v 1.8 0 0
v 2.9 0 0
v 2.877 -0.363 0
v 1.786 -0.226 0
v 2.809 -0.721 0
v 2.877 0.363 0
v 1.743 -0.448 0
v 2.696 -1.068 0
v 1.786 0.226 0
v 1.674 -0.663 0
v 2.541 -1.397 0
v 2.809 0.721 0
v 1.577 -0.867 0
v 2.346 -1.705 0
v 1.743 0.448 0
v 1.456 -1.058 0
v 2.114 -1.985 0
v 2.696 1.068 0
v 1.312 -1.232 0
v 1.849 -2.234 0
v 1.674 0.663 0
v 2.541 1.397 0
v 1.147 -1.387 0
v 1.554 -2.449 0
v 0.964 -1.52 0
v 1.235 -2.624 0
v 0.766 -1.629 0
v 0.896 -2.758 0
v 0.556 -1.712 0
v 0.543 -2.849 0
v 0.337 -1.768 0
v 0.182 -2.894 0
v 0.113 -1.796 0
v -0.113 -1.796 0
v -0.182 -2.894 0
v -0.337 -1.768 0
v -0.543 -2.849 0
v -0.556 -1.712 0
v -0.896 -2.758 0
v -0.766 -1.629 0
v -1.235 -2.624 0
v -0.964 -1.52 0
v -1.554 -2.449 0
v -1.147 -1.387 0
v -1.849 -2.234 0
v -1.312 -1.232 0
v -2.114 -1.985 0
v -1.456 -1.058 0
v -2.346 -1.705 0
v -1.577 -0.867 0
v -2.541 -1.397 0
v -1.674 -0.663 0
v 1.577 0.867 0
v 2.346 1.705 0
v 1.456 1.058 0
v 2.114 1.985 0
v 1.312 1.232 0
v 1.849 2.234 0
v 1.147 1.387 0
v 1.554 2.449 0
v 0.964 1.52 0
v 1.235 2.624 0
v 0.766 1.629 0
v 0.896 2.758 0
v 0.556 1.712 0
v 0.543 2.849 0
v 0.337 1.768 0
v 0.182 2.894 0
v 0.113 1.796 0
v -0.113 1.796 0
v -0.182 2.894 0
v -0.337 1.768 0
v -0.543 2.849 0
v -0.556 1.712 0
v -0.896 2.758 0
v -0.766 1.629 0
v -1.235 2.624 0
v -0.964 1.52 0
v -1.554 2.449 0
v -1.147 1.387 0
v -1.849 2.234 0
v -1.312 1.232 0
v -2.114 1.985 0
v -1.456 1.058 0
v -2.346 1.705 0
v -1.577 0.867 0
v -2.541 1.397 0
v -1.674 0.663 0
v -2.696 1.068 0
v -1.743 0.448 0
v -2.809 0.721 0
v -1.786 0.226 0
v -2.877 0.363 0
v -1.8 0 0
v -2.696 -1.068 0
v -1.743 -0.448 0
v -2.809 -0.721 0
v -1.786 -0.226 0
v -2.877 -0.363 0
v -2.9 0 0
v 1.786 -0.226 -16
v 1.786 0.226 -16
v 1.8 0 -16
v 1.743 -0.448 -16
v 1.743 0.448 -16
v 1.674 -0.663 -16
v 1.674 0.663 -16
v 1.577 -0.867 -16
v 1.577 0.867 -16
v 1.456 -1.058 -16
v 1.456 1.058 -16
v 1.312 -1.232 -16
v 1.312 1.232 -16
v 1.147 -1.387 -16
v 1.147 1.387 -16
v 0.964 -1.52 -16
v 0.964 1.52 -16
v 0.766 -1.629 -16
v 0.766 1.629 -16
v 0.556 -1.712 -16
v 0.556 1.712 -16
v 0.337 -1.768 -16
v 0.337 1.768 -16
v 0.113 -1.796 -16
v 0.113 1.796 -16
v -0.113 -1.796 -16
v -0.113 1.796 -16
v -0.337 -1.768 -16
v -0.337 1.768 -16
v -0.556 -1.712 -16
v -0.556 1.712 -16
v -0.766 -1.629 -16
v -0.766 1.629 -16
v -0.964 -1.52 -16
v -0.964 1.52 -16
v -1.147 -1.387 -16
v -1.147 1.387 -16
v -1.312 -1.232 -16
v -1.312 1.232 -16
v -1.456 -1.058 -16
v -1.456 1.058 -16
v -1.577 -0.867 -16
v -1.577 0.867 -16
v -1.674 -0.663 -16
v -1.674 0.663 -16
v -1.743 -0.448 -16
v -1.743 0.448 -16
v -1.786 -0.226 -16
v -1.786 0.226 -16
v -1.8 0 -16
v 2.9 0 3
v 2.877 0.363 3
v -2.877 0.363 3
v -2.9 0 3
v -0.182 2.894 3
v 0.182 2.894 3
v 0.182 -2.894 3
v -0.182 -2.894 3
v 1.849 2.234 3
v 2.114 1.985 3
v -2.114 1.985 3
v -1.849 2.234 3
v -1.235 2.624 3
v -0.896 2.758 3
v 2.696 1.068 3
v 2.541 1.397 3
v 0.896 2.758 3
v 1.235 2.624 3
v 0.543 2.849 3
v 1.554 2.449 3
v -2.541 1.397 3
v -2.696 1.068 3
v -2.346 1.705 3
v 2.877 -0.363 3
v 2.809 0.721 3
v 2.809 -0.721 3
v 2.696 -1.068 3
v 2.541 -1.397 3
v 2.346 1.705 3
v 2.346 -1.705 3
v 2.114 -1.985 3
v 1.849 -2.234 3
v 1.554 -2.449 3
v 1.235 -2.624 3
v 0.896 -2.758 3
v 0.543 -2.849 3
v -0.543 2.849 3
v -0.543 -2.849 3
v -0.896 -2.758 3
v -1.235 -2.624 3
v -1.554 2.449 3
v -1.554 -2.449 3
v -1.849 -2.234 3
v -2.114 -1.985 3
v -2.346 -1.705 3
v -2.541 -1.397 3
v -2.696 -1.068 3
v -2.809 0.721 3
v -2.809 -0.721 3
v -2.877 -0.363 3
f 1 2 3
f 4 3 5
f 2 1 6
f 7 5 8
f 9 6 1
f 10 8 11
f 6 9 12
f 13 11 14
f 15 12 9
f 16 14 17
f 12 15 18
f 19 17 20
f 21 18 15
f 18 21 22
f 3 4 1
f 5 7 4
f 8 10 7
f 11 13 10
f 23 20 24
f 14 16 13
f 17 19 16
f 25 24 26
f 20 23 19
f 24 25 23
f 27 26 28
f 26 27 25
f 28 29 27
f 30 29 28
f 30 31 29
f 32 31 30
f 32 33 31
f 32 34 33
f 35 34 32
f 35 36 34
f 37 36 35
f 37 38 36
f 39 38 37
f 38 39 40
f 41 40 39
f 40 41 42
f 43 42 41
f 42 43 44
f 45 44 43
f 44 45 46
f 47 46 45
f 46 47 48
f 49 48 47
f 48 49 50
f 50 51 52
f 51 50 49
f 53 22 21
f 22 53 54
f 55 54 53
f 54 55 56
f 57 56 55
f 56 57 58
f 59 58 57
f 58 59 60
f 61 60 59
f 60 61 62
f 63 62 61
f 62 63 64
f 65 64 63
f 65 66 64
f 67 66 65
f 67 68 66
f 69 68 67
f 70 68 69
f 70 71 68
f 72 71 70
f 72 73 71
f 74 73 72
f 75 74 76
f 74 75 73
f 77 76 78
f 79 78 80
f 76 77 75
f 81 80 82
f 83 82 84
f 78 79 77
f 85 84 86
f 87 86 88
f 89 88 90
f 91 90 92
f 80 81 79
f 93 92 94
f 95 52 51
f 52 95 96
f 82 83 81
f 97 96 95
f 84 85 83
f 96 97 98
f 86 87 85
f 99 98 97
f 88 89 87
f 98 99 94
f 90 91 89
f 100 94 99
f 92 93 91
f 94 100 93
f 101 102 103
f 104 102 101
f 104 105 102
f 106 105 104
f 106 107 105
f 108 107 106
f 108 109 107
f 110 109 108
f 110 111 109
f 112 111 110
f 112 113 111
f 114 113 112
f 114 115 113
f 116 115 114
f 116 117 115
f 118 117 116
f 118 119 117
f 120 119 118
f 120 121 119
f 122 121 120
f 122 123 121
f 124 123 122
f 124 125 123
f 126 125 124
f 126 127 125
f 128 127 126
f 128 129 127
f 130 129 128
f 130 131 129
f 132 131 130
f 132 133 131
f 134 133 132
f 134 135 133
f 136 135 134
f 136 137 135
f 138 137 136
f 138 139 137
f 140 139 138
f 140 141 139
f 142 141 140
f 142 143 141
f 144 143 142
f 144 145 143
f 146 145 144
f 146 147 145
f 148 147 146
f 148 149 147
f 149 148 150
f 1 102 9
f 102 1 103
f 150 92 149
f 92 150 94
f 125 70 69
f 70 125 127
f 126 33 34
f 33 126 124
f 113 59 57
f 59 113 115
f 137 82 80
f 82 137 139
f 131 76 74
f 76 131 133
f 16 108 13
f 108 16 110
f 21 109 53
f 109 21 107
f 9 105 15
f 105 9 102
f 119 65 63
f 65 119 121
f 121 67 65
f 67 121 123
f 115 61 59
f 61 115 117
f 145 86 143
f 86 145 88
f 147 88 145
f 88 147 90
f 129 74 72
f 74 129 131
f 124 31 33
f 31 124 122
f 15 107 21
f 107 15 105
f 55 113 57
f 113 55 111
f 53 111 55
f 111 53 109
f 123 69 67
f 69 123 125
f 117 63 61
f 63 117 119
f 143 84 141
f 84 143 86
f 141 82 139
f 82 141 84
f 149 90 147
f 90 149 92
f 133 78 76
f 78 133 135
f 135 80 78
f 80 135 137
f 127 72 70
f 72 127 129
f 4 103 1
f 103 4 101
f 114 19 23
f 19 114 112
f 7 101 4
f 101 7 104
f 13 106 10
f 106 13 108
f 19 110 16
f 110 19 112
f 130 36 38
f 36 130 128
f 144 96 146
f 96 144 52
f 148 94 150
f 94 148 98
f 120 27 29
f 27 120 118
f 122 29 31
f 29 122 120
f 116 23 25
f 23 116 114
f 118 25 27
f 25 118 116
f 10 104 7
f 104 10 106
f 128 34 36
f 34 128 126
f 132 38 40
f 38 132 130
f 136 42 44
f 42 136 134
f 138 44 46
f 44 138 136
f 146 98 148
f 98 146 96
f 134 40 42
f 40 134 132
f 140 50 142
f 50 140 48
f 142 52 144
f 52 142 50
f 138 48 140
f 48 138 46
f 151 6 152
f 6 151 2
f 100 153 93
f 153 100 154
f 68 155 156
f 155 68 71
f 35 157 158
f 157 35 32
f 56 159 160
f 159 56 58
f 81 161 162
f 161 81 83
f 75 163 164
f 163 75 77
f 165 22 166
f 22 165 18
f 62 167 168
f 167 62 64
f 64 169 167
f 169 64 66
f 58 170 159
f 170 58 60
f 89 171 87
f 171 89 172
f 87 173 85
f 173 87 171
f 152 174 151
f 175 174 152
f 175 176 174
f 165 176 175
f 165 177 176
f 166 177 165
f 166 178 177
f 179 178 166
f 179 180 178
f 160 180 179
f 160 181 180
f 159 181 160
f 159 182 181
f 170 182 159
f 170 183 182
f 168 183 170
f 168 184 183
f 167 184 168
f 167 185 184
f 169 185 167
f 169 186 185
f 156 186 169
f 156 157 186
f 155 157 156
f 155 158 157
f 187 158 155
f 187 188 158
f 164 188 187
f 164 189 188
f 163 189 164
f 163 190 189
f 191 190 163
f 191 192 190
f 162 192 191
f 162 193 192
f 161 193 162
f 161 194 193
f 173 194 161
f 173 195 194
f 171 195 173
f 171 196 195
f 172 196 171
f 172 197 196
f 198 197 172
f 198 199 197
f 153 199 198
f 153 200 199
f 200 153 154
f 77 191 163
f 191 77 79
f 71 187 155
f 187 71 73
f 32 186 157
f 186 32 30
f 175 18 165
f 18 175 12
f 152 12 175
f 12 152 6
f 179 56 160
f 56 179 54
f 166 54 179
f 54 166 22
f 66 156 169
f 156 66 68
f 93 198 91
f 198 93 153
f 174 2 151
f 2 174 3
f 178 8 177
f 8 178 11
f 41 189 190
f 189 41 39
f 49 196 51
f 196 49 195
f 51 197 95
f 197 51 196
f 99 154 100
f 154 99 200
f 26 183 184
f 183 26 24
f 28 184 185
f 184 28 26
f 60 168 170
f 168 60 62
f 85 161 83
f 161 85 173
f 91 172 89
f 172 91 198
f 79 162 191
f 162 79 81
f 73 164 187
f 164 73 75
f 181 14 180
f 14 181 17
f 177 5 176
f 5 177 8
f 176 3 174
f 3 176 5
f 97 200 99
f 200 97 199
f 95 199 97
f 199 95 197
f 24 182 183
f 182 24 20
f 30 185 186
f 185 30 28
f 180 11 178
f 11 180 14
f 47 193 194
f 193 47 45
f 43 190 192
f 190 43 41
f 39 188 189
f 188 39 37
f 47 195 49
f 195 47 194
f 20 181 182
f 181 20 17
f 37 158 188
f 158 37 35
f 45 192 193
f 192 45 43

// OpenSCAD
$fn = 50;


difference() {
	union() {
		translate(v = [0, 0, 0]) {
			rotate(a = [0, 0, 0]) {
				difference() {
					union() {
						translate(v = [0, 0, -16.0000000000]) {
							cylinder(h = 16, r = 1.5000000000);
						}
						translate(v = [0, 0, -16.0000000000]) {
							cylinder(h = 16, r = 1.8000000000);
						}
						cylinder(h = 3, r = 2.9000000000);
						translate(v = [0, 0, -16.0000000000]) {
							cylinder(h = 16, r = 1.5000000000);
						}
					}
					union();
				}
			}
		}
	}
	union();
}
